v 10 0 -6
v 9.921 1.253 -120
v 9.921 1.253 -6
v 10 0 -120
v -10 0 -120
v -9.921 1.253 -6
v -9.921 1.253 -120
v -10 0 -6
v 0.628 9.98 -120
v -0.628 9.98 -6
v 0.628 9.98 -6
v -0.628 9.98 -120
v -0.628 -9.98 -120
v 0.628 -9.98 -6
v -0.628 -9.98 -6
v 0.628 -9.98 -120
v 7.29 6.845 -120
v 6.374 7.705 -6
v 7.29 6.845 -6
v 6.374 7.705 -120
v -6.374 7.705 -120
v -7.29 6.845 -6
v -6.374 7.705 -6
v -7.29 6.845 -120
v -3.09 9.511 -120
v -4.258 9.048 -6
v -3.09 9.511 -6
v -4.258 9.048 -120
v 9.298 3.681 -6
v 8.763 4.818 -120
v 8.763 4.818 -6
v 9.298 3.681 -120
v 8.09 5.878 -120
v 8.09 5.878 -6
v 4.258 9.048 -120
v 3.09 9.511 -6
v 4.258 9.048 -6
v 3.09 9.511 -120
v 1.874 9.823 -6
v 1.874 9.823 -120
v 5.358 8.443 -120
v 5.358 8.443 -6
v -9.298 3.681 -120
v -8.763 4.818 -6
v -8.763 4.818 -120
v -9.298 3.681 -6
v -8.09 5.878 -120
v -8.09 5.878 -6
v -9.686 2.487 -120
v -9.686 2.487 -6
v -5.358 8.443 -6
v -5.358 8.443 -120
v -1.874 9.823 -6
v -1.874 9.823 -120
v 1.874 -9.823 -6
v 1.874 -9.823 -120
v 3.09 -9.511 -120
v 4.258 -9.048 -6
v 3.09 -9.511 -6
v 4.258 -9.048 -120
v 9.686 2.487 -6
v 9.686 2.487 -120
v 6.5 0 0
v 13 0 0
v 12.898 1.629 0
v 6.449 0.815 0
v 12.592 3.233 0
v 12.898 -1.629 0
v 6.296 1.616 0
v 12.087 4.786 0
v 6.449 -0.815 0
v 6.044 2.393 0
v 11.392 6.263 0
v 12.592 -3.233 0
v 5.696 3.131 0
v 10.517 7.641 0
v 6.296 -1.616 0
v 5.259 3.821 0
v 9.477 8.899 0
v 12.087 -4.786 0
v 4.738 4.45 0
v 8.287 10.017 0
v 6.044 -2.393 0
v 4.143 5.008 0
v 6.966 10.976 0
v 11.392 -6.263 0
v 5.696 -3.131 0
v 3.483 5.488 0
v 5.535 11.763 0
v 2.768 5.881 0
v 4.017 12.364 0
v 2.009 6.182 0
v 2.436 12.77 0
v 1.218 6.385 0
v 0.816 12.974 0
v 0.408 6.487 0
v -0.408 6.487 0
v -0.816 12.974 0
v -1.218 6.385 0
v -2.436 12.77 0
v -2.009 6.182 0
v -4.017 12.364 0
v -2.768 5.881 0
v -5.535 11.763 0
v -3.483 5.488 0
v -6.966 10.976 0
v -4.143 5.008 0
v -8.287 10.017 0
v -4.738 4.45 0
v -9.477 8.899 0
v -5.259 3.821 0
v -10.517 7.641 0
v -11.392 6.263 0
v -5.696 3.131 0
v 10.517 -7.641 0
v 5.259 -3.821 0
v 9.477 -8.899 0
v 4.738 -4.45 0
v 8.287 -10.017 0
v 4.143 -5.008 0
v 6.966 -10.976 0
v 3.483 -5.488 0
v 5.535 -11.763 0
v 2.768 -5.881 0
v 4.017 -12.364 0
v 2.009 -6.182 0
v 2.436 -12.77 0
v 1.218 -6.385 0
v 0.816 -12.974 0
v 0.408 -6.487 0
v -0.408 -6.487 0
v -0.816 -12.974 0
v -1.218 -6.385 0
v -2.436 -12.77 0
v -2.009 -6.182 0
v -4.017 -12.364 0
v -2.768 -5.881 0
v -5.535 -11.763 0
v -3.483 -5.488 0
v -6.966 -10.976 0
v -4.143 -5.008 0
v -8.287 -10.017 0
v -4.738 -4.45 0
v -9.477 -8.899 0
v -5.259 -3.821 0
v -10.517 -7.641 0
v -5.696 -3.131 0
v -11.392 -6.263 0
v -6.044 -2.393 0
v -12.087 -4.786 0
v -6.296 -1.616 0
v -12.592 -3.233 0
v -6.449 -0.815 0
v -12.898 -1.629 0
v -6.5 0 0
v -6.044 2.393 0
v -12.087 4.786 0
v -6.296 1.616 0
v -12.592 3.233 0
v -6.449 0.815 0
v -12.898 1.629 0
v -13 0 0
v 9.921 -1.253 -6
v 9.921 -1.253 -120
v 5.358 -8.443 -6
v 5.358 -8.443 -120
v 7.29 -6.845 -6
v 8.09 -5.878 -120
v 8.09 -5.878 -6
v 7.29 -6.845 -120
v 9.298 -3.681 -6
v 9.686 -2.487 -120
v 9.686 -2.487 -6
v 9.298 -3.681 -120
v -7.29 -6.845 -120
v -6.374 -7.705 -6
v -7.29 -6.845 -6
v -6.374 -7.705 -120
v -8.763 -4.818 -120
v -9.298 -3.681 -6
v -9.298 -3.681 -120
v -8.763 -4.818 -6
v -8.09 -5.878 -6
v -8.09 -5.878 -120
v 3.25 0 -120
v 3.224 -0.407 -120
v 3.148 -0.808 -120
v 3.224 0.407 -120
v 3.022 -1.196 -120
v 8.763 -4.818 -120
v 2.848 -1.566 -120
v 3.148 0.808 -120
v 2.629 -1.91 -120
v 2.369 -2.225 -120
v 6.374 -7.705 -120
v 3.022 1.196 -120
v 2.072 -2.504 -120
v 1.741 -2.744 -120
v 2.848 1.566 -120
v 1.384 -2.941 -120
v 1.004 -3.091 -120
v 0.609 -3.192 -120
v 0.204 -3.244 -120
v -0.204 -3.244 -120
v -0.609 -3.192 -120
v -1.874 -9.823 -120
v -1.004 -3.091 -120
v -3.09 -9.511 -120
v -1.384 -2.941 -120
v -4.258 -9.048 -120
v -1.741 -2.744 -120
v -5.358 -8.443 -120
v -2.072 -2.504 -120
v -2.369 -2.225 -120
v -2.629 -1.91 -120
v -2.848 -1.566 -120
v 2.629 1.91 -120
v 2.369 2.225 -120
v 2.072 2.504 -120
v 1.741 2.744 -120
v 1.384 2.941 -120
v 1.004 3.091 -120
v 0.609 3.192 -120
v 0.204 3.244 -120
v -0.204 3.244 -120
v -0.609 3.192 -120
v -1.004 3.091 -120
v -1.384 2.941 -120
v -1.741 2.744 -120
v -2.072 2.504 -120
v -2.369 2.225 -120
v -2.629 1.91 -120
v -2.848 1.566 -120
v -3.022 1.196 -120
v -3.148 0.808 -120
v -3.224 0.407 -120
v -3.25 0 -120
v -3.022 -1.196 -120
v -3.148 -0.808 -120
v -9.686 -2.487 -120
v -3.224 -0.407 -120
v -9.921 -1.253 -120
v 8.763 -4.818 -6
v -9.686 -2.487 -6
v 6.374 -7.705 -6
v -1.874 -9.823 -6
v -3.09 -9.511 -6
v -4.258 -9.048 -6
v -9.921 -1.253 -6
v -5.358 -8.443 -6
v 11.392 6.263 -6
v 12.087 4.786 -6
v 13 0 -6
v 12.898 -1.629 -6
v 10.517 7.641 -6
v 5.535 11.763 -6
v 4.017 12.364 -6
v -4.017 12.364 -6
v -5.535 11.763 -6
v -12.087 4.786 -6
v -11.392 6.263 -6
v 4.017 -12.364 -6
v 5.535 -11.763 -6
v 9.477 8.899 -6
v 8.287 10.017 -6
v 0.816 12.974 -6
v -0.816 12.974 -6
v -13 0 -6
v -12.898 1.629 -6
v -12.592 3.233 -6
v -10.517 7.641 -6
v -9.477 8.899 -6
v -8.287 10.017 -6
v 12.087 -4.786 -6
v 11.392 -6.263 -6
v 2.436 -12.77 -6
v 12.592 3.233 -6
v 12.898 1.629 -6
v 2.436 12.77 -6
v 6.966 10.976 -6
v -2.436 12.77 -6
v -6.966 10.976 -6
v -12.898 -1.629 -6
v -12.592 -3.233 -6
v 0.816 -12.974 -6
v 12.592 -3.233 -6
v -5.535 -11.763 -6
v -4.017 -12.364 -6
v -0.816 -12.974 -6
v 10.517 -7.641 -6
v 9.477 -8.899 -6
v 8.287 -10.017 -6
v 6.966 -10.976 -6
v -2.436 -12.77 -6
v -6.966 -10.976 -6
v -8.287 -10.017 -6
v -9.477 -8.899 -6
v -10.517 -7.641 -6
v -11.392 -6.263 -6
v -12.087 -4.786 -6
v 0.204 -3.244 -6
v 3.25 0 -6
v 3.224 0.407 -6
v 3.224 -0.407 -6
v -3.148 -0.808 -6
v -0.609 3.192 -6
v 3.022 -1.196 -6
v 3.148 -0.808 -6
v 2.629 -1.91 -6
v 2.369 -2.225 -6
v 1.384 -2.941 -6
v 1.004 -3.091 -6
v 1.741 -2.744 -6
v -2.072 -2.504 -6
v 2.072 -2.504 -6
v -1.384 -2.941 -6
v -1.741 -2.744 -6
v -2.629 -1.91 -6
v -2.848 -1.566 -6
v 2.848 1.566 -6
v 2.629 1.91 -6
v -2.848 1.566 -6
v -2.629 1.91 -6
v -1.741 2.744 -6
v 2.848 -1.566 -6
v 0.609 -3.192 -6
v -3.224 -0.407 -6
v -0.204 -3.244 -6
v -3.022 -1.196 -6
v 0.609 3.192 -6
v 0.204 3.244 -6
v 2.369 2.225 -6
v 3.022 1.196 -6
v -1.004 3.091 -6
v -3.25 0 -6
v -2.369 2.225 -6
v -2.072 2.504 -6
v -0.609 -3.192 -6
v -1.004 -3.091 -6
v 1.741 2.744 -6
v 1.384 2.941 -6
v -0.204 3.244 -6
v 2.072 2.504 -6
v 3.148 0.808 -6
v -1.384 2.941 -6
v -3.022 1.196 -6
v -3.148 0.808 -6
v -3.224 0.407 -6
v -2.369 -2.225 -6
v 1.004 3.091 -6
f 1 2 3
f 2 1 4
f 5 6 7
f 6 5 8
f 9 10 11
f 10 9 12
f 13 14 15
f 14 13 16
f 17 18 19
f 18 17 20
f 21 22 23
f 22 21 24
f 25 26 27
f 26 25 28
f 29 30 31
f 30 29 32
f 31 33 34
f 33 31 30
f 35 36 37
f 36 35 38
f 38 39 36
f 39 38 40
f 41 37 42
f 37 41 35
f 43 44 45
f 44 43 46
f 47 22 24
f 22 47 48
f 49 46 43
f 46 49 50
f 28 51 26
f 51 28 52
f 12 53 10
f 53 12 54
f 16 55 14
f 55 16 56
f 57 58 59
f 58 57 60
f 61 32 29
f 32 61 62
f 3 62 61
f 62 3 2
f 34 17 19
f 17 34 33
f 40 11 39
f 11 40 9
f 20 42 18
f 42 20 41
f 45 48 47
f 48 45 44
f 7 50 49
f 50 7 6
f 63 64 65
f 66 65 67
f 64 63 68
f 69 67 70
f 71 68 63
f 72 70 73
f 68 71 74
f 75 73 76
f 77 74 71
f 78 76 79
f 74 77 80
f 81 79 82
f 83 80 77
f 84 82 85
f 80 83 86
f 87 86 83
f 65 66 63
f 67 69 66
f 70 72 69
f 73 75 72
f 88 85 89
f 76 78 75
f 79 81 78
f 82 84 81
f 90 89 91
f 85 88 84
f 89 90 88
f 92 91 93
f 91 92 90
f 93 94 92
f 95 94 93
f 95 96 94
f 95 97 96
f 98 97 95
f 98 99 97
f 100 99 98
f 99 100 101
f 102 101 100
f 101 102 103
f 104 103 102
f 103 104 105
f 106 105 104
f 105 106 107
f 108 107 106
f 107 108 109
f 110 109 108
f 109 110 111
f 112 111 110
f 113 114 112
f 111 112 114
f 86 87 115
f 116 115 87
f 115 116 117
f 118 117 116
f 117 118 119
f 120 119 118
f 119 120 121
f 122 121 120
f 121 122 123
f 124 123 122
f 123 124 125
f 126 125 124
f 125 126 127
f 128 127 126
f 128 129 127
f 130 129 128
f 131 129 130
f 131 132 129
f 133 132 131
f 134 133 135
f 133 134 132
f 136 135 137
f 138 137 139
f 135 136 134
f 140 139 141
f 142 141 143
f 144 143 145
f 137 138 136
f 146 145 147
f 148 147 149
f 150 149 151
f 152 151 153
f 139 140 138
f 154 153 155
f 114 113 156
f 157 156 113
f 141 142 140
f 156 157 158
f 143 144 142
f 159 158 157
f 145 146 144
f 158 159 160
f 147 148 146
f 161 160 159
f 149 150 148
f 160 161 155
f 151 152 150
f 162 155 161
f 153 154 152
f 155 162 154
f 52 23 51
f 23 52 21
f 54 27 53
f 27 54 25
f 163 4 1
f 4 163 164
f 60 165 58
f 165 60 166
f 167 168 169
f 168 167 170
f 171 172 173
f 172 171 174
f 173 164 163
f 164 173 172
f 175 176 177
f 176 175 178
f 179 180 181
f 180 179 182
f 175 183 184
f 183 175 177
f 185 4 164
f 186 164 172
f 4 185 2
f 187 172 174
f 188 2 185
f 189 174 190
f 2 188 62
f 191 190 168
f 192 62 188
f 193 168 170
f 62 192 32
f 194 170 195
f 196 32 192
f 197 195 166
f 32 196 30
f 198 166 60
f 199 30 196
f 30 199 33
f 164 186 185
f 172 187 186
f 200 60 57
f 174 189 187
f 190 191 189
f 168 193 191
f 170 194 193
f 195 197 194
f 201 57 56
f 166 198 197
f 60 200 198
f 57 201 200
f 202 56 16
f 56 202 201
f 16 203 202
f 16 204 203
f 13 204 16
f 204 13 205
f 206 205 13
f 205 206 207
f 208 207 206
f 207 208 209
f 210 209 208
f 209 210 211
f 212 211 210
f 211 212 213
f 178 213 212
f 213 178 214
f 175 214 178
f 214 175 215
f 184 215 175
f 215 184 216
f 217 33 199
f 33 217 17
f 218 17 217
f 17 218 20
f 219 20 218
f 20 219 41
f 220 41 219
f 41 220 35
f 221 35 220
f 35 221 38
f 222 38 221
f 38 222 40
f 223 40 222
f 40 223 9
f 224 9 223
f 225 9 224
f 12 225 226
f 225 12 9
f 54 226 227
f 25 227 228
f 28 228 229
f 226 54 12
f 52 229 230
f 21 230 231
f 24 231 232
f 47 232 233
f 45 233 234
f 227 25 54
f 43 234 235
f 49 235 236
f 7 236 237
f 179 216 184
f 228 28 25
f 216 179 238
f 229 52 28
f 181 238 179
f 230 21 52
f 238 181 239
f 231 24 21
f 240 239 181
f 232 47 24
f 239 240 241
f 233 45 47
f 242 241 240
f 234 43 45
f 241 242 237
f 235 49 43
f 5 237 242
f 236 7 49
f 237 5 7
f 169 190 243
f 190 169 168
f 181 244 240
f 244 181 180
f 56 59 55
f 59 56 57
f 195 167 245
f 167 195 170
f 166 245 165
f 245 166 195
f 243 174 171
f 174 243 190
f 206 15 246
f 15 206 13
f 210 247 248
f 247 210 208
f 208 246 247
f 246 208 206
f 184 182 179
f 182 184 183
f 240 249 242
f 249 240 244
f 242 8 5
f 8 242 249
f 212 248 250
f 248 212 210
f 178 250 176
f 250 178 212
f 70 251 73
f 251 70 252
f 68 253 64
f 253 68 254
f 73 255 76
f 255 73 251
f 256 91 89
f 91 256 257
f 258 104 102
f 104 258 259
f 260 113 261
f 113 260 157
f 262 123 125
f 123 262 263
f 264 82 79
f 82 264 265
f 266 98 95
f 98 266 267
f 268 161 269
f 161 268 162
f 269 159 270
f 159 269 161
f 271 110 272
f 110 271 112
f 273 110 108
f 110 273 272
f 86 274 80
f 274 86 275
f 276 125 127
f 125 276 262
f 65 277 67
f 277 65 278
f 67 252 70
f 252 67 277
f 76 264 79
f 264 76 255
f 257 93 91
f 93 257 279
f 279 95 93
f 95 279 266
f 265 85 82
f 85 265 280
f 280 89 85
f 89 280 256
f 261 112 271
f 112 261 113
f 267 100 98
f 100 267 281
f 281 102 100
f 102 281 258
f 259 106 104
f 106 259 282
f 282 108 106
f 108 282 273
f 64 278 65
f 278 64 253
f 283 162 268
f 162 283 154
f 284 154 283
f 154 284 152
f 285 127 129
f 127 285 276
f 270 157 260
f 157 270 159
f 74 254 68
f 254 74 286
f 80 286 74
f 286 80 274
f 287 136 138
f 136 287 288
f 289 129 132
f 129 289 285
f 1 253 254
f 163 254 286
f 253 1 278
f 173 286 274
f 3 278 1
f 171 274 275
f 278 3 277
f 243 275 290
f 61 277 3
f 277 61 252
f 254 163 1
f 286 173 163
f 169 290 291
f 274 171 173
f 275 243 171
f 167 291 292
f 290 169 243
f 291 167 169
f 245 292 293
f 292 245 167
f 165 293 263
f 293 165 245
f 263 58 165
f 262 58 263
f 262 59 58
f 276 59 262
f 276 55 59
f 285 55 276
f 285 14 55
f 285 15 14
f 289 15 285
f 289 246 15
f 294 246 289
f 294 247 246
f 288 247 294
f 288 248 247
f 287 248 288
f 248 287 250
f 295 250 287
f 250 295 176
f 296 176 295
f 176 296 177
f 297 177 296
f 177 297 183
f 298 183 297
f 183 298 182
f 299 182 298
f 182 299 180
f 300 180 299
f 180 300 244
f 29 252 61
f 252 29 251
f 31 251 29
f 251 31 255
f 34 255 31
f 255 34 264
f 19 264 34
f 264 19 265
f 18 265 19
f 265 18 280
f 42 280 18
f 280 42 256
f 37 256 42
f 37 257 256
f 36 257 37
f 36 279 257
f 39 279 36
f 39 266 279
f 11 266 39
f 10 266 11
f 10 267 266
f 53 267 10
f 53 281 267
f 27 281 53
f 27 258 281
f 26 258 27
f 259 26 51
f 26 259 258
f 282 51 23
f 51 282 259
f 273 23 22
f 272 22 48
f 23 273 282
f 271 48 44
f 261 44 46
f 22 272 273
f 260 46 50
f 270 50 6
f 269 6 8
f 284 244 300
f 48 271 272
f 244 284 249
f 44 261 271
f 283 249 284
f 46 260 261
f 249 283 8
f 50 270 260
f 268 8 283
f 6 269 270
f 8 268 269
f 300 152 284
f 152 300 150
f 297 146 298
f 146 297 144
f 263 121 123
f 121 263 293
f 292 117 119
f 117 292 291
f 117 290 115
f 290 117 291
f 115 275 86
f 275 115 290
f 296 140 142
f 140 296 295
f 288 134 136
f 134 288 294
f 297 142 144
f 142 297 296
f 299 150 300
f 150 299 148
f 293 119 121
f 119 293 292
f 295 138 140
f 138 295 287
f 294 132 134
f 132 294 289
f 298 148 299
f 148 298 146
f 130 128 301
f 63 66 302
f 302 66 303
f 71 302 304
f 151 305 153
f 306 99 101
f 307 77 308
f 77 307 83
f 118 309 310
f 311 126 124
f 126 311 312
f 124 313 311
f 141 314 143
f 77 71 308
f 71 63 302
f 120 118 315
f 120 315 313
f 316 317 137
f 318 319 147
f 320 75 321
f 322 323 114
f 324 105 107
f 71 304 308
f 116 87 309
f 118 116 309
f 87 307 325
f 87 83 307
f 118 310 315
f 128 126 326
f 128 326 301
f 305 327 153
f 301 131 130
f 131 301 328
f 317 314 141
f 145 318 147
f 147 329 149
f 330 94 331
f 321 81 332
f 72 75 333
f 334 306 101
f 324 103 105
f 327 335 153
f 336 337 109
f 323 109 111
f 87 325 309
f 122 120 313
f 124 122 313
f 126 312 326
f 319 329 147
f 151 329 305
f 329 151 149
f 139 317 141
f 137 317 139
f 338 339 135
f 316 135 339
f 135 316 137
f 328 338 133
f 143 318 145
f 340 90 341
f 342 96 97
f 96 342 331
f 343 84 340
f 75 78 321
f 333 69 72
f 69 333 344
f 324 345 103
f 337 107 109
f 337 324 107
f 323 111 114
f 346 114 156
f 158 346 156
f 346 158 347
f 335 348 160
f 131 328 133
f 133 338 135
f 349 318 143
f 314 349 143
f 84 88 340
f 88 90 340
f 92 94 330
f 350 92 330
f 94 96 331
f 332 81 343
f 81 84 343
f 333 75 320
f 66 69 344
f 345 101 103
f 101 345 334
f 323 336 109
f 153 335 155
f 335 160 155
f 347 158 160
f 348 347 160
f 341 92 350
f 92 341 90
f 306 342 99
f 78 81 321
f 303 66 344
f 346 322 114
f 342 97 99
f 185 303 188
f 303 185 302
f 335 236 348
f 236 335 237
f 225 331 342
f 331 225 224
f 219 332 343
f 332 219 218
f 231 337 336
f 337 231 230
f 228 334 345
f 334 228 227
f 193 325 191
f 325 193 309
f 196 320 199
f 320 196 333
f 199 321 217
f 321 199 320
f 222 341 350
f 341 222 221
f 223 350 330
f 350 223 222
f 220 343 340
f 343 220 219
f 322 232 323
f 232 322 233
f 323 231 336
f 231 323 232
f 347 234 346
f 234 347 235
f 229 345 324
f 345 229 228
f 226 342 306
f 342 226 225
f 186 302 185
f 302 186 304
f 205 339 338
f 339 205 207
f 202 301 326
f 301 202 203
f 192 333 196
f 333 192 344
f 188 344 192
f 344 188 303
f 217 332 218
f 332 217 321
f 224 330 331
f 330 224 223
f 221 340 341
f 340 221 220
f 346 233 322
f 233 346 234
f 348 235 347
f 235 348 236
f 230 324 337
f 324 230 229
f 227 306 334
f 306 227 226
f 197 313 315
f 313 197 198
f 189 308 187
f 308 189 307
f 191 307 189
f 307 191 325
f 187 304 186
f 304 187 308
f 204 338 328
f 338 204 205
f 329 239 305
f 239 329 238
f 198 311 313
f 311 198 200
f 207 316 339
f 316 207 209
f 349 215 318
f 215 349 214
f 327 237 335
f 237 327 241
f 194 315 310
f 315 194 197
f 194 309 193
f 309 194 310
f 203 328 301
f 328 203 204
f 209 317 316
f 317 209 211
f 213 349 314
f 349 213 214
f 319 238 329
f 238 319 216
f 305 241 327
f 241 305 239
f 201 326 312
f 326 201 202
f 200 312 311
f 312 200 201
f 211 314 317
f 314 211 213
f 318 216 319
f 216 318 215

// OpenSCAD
$fn = 50;


difference() {
	union() {
		translate(v = [0, 0, -120.0000000000]) {
			cylinder(h = 120, r = 10.0000000000);
		}
		translate(v = [0, 0, -6.0000000000]) {
			cylinder(h = 6, r = 13.0000000000);
		}
	}
	union() {
		translate(v = [0, 0, 0]) {
			rotate(a = [0, 0, 0]) {
				difference() {
					union() {
						#translate(v = [0, 0, -120.0000000000]) {
							cylinder(h = 120, r = 2.2500000000);
						}
						#translate(v = [0, 0, -6]) {
							cylinder(h = 6, r1 = 3.2500000000, r2 = 6.5000000000);
						}
						#translate(v = [0, 0, -120.0000000000]) {
							cylinder(h = 120, r = 3.2500000000);
						}
						#translate(v = [0, 0, -120.0000000000]) {
							cylinder(h = 120, r = 2.2500000000);
						}
					}
					union();
				}
			}
		}
	}
}
